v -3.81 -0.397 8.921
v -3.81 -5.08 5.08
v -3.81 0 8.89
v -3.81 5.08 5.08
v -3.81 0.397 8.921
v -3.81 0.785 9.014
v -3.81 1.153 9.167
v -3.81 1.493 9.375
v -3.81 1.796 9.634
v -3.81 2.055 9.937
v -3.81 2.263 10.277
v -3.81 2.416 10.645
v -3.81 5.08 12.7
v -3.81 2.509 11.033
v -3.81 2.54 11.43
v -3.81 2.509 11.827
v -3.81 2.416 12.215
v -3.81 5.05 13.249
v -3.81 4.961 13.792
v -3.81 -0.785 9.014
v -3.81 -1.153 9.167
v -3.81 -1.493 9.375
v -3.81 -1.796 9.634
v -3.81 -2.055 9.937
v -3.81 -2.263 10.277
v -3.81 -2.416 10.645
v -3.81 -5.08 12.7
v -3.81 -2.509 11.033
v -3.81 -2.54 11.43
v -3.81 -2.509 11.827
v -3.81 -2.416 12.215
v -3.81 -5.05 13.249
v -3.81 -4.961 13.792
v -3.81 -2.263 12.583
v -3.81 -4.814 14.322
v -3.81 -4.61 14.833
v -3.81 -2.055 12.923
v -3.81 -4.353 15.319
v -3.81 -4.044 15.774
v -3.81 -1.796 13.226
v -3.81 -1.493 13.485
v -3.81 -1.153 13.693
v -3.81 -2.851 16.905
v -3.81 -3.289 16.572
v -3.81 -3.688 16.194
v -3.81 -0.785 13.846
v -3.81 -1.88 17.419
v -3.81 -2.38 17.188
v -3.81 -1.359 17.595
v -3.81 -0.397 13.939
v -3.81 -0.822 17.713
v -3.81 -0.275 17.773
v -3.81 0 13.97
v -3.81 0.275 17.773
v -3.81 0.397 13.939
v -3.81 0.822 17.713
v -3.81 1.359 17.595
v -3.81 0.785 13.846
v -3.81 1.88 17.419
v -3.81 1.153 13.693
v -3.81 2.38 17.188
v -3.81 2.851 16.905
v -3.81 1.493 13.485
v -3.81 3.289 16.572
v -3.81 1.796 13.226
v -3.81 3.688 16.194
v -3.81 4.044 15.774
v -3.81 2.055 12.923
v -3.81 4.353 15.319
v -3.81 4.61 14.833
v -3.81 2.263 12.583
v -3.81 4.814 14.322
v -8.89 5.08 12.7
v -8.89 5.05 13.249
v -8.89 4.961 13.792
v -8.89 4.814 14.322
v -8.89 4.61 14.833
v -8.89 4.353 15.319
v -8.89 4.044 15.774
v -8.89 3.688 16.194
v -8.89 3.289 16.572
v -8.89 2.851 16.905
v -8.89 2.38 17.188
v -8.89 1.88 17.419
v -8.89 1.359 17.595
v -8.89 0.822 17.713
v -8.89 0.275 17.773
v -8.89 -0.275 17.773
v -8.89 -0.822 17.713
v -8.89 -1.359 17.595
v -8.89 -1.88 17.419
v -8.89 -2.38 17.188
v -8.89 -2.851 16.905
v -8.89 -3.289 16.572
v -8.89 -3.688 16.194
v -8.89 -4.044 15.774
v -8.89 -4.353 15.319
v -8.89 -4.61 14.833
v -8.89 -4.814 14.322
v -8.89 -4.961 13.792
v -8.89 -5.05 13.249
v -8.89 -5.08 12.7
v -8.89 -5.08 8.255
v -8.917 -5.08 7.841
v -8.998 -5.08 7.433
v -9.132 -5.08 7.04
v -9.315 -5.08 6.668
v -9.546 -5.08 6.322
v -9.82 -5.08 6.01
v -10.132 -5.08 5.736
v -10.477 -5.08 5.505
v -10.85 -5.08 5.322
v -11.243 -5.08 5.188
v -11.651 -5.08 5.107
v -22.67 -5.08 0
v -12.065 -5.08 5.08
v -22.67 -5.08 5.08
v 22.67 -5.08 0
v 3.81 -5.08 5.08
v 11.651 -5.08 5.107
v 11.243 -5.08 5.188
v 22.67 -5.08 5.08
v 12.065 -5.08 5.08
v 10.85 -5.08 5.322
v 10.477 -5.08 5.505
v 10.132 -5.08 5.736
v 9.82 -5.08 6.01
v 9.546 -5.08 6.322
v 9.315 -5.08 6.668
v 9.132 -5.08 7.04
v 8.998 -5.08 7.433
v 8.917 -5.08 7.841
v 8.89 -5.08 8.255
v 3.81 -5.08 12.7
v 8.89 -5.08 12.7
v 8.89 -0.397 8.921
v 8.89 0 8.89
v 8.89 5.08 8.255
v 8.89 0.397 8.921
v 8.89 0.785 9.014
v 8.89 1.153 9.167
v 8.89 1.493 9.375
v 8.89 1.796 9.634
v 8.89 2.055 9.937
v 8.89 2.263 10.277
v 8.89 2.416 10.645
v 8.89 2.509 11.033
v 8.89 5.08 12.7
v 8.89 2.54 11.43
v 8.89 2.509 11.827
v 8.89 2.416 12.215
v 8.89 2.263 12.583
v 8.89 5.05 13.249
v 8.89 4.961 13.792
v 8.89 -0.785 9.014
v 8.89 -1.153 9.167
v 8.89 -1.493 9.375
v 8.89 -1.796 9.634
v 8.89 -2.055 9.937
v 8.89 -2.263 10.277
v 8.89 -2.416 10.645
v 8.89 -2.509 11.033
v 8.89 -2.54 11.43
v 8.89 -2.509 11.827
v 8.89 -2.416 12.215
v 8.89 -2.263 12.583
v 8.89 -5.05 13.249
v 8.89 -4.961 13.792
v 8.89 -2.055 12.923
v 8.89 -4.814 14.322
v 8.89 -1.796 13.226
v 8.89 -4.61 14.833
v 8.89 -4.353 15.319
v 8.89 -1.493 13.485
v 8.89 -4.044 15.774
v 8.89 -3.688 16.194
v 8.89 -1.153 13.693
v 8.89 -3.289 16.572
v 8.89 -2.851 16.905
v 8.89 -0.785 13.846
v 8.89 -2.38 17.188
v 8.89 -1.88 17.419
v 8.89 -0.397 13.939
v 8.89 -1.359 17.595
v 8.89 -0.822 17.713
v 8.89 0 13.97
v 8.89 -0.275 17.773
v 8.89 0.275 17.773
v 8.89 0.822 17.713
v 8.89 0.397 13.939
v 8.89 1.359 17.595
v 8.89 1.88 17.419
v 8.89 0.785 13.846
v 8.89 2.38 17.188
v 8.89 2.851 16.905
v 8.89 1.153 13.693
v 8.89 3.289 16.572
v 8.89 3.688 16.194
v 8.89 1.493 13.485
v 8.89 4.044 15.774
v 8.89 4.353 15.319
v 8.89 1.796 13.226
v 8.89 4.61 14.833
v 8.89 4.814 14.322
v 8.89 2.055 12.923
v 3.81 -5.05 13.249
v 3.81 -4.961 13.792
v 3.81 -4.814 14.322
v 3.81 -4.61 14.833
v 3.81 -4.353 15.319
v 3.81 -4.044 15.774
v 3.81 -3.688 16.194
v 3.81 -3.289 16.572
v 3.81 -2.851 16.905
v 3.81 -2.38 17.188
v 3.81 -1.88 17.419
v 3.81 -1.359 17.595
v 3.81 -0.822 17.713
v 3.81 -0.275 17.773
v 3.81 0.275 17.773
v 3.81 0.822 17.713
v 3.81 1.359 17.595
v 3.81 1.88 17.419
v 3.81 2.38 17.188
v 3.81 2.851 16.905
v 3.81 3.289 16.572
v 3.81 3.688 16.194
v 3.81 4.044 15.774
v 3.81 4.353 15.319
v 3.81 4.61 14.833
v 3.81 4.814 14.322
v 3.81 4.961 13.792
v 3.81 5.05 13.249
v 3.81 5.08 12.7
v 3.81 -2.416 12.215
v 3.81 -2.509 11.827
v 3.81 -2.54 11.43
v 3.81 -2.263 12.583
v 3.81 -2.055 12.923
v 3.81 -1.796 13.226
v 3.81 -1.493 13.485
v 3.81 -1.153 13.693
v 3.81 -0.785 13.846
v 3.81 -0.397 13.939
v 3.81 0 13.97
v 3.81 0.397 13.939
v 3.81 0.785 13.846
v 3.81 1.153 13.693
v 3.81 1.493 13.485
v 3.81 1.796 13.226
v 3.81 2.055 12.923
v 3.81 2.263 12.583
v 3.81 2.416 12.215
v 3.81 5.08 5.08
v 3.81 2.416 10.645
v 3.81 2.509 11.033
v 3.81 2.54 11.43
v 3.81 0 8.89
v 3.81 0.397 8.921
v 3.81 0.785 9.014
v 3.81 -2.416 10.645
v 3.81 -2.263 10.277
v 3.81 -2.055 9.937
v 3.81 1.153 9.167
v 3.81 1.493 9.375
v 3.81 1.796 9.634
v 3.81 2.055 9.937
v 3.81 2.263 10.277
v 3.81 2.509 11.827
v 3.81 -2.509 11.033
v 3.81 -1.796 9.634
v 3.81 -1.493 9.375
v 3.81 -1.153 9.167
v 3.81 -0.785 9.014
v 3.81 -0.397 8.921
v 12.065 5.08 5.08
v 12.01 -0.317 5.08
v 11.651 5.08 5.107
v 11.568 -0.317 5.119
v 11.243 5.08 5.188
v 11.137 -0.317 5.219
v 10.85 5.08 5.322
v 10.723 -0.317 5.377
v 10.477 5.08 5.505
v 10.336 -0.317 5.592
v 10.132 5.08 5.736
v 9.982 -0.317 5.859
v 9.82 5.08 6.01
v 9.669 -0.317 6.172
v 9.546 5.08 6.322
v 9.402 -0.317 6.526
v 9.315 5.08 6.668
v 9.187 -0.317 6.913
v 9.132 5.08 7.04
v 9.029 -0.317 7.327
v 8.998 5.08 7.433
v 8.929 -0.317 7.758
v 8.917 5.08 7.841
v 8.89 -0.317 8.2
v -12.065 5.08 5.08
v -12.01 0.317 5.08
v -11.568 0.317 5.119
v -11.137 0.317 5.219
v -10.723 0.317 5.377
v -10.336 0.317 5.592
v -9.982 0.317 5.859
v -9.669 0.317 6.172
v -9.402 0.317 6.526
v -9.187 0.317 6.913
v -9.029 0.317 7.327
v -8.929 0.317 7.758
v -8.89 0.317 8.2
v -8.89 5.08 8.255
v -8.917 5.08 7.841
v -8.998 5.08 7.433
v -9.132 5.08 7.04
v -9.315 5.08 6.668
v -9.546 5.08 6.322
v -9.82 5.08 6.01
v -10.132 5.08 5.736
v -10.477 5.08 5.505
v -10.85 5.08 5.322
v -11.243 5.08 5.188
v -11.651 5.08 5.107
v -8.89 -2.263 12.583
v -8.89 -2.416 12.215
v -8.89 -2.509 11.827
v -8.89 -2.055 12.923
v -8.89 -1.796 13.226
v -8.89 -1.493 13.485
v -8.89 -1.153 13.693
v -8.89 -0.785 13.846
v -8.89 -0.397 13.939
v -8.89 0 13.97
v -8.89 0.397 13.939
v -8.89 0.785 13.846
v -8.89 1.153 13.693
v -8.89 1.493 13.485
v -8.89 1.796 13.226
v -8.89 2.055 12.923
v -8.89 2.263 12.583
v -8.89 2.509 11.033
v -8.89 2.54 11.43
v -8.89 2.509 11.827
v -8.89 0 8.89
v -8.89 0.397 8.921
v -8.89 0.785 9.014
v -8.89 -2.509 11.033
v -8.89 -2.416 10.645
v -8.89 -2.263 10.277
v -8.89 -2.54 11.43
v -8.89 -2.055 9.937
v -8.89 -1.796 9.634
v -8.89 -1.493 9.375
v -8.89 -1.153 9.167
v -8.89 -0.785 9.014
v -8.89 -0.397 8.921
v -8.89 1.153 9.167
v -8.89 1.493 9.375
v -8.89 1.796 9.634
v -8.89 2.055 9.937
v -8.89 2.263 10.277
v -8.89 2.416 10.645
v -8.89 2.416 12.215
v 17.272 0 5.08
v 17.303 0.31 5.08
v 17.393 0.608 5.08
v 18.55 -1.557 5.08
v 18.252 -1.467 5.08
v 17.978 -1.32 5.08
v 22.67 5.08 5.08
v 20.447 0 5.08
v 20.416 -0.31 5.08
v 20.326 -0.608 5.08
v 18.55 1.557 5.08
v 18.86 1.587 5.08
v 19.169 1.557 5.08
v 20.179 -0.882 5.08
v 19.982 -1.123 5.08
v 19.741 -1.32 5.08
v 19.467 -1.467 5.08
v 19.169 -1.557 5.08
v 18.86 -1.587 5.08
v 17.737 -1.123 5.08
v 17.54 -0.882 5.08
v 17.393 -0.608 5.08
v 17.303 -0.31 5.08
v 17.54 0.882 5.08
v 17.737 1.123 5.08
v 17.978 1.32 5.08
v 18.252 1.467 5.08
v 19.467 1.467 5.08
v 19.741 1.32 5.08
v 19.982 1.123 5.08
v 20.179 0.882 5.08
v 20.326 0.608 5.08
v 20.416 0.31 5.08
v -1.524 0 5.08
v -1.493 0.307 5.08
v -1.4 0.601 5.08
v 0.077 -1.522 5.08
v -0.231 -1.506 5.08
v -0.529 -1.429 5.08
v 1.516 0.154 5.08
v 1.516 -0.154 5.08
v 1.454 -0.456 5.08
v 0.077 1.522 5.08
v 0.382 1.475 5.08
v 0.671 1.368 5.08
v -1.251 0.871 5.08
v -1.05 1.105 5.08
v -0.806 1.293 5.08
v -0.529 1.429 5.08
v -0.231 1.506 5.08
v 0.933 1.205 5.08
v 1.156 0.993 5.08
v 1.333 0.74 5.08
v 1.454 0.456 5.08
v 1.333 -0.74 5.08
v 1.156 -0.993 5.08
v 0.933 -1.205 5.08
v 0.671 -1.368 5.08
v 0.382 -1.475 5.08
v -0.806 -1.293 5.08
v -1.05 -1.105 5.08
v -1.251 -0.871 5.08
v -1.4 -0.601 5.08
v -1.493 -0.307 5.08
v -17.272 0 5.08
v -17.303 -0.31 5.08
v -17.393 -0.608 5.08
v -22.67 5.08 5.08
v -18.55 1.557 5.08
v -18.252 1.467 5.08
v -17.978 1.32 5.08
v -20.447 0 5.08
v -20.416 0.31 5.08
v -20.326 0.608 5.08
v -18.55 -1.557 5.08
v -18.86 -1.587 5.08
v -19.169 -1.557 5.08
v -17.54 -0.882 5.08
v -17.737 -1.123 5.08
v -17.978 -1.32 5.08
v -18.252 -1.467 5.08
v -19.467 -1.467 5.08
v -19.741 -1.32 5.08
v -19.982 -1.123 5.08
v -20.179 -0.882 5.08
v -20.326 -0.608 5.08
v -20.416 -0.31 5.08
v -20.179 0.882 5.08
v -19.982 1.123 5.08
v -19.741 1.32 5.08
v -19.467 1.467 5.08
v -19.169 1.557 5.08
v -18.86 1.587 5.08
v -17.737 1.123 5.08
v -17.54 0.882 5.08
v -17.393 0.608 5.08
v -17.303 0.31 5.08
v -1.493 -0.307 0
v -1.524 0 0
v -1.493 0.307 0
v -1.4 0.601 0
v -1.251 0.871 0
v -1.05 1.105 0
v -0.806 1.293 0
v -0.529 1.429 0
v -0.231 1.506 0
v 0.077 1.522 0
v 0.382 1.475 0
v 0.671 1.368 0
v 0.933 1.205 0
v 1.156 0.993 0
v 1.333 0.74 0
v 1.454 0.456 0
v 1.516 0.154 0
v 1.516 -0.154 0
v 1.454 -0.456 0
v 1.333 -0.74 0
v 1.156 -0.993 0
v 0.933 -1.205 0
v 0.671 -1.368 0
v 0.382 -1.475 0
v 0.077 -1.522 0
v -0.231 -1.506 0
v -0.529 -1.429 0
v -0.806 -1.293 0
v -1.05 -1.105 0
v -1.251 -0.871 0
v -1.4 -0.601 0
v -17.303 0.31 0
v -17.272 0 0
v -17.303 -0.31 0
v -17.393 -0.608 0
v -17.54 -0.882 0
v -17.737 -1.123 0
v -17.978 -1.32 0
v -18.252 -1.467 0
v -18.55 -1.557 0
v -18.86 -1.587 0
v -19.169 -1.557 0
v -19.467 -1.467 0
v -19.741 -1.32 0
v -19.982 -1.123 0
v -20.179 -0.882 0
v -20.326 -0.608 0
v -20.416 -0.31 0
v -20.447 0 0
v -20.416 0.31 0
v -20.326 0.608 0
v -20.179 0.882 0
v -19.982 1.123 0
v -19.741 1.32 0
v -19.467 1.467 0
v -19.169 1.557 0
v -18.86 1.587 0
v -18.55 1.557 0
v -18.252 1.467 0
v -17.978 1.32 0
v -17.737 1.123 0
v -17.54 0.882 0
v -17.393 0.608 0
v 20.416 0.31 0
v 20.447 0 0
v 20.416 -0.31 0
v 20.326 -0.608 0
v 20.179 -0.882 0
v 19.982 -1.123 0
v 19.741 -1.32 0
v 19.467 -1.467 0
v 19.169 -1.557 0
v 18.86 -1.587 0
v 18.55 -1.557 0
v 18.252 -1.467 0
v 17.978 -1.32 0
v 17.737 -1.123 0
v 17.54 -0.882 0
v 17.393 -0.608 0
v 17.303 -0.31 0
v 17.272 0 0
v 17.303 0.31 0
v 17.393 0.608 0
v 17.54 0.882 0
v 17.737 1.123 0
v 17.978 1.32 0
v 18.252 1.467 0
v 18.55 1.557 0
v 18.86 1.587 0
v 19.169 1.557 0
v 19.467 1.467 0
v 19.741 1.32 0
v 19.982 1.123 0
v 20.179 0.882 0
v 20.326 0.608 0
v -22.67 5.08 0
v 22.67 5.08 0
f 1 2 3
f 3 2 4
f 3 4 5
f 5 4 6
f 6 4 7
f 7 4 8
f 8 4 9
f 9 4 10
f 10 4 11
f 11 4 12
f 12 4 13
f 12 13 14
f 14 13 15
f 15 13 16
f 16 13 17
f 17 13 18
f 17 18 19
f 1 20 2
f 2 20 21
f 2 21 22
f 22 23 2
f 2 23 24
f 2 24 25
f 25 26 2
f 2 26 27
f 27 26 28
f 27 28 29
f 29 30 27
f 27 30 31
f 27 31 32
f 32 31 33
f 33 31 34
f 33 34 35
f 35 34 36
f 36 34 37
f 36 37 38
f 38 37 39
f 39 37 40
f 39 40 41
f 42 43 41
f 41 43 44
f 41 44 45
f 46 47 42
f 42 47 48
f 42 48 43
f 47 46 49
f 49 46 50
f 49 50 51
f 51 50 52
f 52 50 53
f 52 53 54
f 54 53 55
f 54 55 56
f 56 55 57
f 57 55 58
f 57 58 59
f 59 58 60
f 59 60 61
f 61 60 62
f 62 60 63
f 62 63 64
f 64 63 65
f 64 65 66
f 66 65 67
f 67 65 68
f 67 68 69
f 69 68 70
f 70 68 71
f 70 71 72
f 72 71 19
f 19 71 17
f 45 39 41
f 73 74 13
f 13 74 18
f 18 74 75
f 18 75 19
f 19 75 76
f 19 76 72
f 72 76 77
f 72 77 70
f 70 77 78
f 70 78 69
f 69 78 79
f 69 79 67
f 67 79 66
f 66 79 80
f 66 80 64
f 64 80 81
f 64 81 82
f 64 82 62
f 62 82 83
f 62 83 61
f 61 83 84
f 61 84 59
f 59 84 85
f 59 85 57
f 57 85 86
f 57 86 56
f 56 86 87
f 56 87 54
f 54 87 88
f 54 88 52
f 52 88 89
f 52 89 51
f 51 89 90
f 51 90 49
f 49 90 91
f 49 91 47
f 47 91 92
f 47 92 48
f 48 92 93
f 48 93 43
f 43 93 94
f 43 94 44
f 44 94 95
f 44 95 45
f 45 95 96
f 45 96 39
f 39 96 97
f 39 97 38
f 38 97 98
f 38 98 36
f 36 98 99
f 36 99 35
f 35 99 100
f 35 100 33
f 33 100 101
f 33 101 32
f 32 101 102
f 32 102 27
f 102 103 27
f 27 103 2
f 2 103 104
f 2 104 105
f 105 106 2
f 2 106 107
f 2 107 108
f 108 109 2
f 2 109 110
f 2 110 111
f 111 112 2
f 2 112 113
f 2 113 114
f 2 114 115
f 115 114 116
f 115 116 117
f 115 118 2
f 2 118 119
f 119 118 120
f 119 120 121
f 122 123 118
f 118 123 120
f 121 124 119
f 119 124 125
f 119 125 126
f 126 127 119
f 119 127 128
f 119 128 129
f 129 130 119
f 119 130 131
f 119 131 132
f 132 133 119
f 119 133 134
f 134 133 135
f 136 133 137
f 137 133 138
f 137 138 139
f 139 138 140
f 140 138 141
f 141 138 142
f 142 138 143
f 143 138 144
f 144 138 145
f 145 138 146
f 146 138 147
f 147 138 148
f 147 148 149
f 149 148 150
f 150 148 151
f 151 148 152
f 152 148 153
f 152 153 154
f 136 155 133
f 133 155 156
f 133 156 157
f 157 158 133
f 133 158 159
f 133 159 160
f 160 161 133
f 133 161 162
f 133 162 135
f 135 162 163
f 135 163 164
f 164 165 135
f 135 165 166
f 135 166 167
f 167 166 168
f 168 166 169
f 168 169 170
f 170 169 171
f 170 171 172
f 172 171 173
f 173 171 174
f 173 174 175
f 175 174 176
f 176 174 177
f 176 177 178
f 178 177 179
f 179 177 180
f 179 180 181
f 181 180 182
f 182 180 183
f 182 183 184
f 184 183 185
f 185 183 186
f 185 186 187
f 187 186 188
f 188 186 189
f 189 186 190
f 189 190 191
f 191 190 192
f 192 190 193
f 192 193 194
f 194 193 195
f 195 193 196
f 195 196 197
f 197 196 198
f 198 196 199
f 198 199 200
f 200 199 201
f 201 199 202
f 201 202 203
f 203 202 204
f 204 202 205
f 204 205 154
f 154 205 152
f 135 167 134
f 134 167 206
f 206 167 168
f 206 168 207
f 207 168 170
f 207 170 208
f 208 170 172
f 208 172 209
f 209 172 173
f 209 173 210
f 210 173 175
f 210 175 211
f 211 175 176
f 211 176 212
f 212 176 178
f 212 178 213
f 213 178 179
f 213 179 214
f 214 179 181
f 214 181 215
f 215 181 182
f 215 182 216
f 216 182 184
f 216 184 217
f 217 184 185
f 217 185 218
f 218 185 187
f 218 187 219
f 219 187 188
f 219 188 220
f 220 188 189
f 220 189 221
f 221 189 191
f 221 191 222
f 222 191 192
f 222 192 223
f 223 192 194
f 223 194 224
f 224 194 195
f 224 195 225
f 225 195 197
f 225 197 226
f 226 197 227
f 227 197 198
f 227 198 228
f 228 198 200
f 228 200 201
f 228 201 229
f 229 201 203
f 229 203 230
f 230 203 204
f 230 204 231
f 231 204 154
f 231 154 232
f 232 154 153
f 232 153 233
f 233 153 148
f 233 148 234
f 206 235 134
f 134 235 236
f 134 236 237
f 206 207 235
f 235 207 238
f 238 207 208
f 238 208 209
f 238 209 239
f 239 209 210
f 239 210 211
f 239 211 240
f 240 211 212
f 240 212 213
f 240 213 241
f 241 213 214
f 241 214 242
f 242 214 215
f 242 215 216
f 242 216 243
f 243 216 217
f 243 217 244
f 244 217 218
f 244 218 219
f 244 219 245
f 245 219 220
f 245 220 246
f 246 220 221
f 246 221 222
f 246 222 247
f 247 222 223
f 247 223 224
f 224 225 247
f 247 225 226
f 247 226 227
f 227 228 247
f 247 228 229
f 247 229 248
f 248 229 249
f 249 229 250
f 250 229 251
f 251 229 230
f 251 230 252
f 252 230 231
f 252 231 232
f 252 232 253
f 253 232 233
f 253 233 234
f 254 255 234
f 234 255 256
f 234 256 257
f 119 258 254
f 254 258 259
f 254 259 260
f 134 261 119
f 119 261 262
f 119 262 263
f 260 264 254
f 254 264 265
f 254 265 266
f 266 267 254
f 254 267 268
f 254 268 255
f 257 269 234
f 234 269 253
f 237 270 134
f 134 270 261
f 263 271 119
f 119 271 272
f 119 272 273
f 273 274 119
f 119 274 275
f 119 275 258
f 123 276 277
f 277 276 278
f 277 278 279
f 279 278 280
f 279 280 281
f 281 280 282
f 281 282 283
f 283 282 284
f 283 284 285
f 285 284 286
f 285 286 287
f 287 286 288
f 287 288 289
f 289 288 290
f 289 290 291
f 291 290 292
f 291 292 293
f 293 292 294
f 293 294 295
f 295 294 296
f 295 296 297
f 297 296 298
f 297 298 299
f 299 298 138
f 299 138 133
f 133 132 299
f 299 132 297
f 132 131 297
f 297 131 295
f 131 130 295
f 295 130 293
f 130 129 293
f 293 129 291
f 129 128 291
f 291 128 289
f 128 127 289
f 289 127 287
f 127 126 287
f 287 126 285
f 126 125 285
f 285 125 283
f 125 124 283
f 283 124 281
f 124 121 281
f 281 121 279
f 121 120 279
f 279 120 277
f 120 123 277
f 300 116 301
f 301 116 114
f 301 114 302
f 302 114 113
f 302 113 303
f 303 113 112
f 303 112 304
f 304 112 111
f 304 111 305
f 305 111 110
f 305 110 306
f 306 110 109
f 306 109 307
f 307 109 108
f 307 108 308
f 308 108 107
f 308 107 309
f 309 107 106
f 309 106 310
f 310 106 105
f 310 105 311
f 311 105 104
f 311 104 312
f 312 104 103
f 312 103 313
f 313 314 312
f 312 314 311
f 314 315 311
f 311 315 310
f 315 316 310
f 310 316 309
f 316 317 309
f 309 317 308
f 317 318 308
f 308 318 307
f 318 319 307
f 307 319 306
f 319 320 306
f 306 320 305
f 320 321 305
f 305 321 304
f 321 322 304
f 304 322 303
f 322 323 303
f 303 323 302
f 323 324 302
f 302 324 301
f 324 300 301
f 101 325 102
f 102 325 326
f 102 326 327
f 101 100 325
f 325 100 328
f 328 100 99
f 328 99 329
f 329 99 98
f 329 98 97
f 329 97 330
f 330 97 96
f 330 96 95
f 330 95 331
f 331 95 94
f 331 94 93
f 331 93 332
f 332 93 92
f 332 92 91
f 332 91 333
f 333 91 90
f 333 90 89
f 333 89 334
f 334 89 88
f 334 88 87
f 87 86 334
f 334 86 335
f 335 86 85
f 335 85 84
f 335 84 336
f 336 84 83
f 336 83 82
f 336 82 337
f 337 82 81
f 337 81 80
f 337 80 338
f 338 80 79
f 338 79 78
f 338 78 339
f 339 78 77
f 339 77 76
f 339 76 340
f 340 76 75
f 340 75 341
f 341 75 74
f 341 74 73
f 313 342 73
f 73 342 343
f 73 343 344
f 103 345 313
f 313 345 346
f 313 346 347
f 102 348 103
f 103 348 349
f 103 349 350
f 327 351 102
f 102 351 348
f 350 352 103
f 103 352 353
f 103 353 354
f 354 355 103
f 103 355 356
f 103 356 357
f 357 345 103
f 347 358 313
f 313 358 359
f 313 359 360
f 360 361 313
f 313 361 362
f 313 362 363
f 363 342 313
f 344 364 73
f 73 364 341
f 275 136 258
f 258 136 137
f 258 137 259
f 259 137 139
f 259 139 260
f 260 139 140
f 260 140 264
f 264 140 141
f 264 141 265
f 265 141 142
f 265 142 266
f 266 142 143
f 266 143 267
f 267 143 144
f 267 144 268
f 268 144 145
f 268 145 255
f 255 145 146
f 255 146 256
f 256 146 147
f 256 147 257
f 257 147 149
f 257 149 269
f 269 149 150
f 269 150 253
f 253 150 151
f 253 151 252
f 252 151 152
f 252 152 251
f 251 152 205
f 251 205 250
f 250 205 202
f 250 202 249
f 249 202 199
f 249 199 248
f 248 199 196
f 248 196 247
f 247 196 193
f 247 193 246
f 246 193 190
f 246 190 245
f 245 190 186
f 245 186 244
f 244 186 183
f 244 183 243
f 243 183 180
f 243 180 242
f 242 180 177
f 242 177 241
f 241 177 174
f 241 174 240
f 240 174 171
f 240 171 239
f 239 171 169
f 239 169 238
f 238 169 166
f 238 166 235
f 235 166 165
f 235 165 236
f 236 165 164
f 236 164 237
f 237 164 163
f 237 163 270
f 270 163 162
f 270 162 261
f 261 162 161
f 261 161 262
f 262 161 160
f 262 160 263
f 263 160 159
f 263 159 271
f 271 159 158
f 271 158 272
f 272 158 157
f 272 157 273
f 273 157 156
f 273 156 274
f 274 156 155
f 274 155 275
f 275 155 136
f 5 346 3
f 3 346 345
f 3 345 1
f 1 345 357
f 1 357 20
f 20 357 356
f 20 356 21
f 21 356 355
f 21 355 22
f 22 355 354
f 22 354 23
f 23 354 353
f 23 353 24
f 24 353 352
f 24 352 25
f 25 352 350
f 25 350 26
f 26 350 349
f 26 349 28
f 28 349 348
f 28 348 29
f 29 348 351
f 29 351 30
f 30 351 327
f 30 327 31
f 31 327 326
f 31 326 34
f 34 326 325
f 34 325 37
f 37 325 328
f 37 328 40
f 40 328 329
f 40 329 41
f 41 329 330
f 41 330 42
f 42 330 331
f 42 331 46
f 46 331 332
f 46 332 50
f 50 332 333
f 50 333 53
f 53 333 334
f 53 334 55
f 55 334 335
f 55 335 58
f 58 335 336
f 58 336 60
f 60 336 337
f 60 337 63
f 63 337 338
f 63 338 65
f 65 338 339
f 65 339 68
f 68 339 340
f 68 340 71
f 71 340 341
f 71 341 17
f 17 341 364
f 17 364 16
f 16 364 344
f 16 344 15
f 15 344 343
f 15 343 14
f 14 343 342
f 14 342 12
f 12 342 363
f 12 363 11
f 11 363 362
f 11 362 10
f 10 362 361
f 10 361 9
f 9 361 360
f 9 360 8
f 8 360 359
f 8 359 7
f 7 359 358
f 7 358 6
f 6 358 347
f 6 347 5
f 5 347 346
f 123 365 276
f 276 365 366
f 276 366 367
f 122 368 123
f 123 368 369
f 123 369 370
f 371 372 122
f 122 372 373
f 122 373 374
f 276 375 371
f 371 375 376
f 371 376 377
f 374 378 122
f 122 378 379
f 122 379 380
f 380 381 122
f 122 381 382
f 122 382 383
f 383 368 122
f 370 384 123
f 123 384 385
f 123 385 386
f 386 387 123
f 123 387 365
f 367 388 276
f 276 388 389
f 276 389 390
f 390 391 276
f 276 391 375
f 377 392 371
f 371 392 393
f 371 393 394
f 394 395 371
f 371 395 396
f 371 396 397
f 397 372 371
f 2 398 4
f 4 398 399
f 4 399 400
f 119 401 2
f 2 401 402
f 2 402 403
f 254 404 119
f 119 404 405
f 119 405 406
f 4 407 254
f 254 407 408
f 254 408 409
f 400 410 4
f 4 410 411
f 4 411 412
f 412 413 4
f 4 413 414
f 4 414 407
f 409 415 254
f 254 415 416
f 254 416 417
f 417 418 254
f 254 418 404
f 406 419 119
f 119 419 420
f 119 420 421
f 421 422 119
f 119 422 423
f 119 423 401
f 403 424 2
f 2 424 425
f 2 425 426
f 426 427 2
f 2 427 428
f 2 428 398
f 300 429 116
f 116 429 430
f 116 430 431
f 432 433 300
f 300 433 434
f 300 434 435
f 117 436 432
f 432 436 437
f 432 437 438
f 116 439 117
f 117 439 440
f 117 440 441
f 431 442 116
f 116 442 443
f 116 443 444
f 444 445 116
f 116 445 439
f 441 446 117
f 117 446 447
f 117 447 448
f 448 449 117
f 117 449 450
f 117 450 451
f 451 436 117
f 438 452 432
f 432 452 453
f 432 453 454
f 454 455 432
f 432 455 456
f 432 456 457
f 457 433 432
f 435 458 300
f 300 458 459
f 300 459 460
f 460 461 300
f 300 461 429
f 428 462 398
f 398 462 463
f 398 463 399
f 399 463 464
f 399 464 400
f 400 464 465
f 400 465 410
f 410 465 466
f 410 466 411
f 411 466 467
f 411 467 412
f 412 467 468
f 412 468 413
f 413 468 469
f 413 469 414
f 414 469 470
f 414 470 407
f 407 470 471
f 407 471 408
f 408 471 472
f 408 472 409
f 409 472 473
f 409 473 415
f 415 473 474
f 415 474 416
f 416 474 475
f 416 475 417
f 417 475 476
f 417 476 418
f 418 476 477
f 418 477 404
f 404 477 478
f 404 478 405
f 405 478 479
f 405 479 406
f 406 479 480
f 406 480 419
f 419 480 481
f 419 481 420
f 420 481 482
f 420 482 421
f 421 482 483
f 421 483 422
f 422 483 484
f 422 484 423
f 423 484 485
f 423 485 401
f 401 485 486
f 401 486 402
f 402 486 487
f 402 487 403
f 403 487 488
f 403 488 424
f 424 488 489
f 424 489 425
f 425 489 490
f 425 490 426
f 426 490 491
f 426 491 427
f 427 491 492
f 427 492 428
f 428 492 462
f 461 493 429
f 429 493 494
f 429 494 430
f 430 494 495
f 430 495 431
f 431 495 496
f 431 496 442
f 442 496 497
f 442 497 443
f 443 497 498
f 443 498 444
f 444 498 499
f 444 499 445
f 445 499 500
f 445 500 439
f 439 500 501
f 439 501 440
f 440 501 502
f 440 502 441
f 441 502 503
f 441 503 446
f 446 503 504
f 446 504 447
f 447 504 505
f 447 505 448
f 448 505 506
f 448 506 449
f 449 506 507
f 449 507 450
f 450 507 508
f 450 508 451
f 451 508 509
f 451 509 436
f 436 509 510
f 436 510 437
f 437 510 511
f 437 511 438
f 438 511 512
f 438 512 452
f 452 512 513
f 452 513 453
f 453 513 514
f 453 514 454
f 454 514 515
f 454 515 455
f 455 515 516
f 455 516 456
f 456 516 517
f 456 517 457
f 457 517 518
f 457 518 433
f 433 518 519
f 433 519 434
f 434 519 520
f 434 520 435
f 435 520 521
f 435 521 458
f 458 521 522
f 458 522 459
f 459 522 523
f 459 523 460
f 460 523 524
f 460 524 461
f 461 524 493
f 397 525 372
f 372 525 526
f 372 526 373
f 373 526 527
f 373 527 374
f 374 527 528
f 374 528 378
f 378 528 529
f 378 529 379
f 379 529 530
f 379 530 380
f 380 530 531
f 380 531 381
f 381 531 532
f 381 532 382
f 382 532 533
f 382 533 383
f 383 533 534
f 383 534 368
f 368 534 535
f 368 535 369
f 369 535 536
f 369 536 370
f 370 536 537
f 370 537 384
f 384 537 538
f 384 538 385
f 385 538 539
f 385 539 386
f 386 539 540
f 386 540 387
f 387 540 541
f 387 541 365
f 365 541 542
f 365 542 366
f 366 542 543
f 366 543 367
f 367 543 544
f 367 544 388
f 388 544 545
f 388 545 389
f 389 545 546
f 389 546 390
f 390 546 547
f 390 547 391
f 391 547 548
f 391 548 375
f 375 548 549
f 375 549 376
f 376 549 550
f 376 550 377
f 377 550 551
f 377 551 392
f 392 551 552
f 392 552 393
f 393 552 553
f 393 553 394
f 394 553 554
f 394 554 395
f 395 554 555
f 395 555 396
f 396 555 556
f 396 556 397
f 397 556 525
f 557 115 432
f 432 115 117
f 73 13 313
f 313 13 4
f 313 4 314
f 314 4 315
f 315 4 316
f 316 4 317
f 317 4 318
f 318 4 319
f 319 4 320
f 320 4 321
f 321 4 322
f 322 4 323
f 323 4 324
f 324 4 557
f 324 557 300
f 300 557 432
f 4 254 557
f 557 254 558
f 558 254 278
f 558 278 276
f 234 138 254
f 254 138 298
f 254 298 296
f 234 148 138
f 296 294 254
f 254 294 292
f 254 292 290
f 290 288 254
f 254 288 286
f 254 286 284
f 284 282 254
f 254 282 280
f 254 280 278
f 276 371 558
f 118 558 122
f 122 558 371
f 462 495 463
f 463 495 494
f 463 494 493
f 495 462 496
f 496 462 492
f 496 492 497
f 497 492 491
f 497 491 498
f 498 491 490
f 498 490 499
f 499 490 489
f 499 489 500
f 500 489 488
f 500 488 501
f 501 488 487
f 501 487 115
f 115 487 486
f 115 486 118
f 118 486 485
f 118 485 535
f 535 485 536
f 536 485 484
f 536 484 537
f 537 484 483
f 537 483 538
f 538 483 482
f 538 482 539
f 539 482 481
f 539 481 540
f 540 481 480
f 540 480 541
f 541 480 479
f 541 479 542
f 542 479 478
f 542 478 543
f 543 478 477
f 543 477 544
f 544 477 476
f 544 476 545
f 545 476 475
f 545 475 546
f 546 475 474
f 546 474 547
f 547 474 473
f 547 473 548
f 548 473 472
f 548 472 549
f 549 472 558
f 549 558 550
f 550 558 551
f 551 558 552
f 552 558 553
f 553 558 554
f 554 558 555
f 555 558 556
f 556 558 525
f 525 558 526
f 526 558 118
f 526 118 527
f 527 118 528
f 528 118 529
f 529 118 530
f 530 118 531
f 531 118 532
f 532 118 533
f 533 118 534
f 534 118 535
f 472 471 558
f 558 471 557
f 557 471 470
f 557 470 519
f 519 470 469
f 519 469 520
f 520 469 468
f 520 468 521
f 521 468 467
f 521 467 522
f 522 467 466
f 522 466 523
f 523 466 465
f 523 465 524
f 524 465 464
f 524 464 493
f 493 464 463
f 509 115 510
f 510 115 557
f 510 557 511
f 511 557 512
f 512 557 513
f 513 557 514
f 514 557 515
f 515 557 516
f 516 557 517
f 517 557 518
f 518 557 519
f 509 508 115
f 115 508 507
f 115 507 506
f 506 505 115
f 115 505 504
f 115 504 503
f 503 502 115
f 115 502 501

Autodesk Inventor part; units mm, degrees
ref_plane "YZ Plane" through (0, 0, 0) normal (1, 0, 0) x (0, 1, 0)
ref_plane "XZ Plane" through (0, 0, 0) normal (0, 1, 0) x (-1, 0, 0)
ref_plane "XY Plane" through (0, 0, 0) normal (0, 0, 1) x (1, 0, 0)
sketch "Sketch1" plane through (0, 0, 0) normal (0, 0, 1) x (1, 0, 0)
  line L0 (-22.6695, -5.08) -> (22.6695, -5.08)
  line L1 (22.6695, -5.08) -> (22.6695, 5.08)
  line L2 (22.6695, 5.08) -> (-22.6695, 5.08)
  line L3 (-22.6695, 5.08) -> (-22.6695, -5.08)
  line L4 (-22.6695, -5.08) -> (22.6695, 5.08) construction
  line L5 (22.6695, -5.08) -> (-22.6695, 5.08) construction
  point P0 (0, 0)
  dimension "d0" = 10.16
  dimension "d1" = 45.339
extrude "Extrusion1" add sketch "Sketch1" along normal blind 5.08
sketch "Sketch2" plane through (0, 0, 0) normal (0, 0, -1) x (-1, 0, 0)
  line L0 (22.6695, 5.08) -> (22.6695, -5.08) projected
  line L1 (-22.6695, -5.08) -> (-22.6695, 5.08) projected
  line L2 (-22.6695, 5.08) -> (22.6695, 5.08) projected
  point P0 (0, 0)
  point P1 (18.8595, 0)
  point P2 (-18.8595, 0)
  dimension "d4" = 3.81
  dimension "d5" = 3.81
  dimension "d6" = 5.08
  dimension "d7" = 5.08
hole "Hole1" at (-18.8595, 0, 0) at (18.8595, 0, 0) direction (0, 0, 1) diameter 3.175 end through all
sketch "Sketch3" plane through (0, 0, 0) normal (0, 0, -1) x (-1, 0, 0)
  circle A0 centre (0, 0) radius 1.524
  dimension "d15" = 3.048
extrude "Extrusion2" cut sketch "Sketch3" against normal through all
sketch "Sketch4" plane through (0, 0, 5.08) normal (0, 0, 1) x (1, 0, 0)
  line L0 (22.6695, 5.08) -> (-22.6695, 5.08) projected
  line L1 (-22.6695, -5.08) -> (22.6695, -5.08) projected
  line L2 (-3.81, 5.08) -> (-8.89, 5.08)
  line L3 (-8.89, 5.08) -> (-8.89, -5.08)
  line L4 (-8.89, -5.08) -> (-3.81, -5.08)
  line L5 (-3.81, -5.08) -> (-3.81, 5.08)
  line L6 (3.81, 5.08) -> (8.89, 5.08)
  line L7 (8.89, 5.08) -> (8.89, -5.08)
  line L8 (8.89, -5.08) -> (3.81, -5.08)
  line L9 (3.81, -5.08) -> (3.81, 5.08)
  point P0 (0, 0)
  dimension "d18" = 5.08
  dimension "d19" = 3.81
  dimension "d20" = 3.81
  dimension "d21" = 5.08
extrude "Extrusion3" add sketch "Sketch4" along normal blind 12.7 contours L7 L1 L9 L0 | L5 L1 L3 L0
sketch "Sketch5" plane through (-8.89, -5.08, 5.08) normal (-1, 0, 0) x (0, 0, 1)
  line L0 (12.7, 10.16) -> (12.7, 0) projected
  line L1 (0, 10.16) -> (12.7, 10.16) projected
  point P0 (-5.08, 5.08)
  point P1 (6.35, 5.08)
  dimension "d24" = 6.35
  dimension "d25" = 5.08
hole "Hole2" at (-8.89, 0, 11.43) direction (1, 0, 0) diameter 5.08 end through all
fillet "Fillet1" radius 3.175 2 edges at (-8.89, 0, 5.08) (8.89, 0, 5.08)
fillet "Fillet2" radius 5.08 4 edges at (6.35, -5.08, 17.78) (6.35, 5.08, 17.78) (-6.35, -5.08, 17.78) (-6.35, 5.08, 17.78)
properties part number "LowerSpringMountFront"
